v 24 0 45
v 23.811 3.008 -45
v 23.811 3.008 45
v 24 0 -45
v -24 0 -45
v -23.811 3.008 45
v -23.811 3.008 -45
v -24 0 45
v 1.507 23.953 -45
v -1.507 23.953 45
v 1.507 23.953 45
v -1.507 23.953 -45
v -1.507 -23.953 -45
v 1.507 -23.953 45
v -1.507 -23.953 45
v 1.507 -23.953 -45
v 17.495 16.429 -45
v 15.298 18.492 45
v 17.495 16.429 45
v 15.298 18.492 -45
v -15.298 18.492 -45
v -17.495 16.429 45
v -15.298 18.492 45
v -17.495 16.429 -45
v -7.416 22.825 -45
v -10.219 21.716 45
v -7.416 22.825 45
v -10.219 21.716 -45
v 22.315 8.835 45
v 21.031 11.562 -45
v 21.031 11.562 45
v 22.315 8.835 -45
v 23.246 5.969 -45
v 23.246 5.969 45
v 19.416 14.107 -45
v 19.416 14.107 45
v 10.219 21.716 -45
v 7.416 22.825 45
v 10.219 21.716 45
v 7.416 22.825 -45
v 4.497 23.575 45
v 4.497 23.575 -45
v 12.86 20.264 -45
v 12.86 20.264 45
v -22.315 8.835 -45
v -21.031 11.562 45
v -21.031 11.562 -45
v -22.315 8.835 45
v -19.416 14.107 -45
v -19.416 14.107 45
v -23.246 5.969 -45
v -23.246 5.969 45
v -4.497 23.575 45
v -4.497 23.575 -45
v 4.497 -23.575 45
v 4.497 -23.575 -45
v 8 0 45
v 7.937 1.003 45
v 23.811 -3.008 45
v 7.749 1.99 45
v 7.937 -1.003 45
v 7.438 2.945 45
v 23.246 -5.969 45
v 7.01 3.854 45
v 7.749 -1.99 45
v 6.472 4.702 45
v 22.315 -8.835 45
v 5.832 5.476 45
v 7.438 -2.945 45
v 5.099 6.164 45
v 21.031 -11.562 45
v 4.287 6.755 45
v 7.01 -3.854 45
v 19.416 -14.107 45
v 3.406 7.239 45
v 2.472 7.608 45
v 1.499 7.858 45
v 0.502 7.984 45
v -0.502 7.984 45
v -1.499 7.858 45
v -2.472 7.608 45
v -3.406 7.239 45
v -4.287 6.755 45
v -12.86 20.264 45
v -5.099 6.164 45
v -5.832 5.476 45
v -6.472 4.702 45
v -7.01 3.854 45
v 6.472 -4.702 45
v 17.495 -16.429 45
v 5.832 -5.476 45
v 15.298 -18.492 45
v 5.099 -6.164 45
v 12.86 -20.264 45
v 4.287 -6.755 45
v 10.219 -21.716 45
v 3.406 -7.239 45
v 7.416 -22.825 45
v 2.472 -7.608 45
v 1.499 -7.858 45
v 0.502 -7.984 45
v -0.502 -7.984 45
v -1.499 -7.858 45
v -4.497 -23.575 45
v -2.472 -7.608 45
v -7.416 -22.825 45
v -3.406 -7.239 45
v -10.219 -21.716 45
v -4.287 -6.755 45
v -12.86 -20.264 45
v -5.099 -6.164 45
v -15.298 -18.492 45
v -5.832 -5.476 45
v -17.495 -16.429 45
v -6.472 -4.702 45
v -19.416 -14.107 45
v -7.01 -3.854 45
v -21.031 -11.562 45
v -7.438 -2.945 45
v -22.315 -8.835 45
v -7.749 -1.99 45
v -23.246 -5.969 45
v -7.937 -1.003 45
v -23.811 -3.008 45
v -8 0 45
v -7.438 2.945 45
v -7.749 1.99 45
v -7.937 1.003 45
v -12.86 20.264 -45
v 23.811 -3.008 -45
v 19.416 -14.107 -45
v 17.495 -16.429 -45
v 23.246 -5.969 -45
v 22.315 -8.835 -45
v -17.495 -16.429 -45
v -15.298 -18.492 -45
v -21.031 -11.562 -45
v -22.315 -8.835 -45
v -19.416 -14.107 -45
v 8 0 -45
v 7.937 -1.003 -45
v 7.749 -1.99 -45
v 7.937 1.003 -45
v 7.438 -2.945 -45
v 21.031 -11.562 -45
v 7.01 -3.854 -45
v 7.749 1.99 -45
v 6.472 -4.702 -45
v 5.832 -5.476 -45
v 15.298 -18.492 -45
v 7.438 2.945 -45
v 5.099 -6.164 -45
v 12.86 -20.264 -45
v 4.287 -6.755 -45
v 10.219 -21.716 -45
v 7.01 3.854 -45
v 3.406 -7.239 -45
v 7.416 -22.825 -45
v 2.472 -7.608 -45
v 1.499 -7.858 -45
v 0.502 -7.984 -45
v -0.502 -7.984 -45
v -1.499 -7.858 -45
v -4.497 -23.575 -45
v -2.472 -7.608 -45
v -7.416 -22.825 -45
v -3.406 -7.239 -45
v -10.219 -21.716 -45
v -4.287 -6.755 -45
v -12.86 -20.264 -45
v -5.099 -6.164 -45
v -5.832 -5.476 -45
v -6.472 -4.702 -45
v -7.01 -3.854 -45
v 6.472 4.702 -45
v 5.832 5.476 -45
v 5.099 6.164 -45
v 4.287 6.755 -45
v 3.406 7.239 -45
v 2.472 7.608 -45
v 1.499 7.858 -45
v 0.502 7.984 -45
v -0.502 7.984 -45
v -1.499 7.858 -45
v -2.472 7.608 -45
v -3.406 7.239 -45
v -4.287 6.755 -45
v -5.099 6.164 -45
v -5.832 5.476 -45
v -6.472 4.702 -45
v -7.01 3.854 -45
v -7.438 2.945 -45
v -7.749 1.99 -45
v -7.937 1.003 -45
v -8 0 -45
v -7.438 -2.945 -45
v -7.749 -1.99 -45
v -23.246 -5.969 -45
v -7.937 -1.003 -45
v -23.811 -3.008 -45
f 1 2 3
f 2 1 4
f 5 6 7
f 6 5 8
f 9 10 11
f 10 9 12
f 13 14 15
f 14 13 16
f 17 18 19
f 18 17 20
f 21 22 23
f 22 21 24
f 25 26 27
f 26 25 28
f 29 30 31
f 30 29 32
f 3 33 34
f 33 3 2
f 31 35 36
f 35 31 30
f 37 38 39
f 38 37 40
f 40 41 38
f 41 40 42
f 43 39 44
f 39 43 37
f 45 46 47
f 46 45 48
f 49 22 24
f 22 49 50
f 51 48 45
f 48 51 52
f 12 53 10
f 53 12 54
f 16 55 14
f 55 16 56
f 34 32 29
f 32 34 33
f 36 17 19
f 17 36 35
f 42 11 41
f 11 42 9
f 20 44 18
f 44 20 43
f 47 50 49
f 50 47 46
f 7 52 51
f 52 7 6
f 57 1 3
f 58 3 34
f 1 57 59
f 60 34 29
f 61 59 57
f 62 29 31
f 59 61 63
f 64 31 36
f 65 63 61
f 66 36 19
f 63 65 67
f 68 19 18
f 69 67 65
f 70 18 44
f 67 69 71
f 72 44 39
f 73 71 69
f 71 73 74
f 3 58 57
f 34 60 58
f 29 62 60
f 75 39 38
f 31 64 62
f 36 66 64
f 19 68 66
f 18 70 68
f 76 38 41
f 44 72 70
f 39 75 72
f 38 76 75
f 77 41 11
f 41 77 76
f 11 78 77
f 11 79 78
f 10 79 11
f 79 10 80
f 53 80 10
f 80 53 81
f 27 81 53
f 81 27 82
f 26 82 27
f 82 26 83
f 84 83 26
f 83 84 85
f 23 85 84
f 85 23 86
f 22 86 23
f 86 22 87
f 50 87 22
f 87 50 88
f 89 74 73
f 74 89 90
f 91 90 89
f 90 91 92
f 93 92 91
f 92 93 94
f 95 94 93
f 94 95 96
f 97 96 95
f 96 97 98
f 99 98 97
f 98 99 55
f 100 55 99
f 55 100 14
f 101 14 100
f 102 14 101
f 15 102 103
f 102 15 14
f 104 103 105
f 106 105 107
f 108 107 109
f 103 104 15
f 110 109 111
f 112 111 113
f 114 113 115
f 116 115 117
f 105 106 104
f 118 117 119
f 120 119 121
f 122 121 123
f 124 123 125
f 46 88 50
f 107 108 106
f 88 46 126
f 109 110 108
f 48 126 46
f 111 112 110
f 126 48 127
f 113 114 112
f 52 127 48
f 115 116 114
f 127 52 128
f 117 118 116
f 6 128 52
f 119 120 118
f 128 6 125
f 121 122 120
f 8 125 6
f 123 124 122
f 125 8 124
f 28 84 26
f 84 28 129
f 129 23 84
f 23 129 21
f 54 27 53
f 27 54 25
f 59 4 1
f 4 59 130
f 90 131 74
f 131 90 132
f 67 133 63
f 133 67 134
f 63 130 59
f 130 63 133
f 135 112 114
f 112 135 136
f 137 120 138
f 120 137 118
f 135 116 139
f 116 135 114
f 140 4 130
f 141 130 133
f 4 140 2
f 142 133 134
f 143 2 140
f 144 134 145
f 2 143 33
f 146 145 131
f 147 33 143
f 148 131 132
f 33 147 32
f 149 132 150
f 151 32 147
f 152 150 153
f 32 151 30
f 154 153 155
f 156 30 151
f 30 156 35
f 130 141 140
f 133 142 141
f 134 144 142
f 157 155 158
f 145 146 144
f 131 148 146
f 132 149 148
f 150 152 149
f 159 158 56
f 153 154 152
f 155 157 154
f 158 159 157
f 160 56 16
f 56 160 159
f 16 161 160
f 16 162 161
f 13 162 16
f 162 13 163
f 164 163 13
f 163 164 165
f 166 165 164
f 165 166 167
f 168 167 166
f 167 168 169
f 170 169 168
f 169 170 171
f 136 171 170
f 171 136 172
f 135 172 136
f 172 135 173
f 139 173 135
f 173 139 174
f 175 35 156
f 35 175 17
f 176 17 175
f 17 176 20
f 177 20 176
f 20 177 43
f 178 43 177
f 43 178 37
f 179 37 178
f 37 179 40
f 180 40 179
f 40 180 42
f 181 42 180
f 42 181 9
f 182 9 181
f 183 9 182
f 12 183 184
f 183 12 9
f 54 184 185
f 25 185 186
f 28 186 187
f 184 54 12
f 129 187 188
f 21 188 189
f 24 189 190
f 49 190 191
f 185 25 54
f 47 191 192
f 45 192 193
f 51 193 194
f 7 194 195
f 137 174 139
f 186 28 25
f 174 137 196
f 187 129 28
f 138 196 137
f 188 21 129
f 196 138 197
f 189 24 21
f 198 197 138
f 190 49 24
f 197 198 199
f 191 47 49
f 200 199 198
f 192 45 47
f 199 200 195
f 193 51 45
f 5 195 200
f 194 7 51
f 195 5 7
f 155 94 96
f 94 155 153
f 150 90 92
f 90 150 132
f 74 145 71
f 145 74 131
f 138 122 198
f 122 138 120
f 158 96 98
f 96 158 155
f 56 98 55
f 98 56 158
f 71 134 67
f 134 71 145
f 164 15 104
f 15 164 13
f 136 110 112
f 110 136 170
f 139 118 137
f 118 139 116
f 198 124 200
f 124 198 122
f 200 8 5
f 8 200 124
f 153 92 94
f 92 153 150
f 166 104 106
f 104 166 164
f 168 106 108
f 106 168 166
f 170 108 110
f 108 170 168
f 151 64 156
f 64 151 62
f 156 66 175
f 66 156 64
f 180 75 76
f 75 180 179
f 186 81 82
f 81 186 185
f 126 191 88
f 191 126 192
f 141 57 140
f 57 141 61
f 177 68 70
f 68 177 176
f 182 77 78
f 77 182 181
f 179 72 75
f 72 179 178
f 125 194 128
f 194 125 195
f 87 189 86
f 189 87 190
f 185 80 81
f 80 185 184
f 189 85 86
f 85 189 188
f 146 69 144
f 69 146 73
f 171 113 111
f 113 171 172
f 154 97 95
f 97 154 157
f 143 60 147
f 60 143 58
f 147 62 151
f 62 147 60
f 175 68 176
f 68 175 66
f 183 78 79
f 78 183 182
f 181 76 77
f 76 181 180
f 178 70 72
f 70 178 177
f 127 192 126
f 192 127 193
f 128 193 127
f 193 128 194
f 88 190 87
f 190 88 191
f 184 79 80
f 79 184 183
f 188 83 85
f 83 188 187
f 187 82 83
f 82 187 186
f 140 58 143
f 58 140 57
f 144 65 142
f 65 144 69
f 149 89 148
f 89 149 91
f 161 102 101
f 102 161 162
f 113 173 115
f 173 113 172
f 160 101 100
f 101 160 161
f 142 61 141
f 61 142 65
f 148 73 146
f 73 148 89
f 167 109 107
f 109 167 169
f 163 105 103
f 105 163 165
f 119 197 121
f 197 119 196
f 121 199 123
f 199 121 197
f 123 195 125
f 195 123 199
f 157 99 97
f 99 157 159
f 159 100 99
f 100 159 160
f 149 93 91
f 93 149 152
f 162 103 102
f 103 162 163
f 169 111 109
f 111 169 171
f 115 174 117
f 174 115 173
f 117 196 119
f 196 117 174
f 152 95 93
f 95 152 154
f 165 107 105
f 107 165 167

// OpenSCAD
$fn = 50;


difference() {
	union() {
		translate(v = [0, 0, -45.0000000000]) {
			cylinder(h = 90, r = 24.0000000000);
		}
	}
	union() {
		translate(v = [0, 0, -100.0000000000]) {
			cylinder(h = 200, r = 8);
		}
	}
}
